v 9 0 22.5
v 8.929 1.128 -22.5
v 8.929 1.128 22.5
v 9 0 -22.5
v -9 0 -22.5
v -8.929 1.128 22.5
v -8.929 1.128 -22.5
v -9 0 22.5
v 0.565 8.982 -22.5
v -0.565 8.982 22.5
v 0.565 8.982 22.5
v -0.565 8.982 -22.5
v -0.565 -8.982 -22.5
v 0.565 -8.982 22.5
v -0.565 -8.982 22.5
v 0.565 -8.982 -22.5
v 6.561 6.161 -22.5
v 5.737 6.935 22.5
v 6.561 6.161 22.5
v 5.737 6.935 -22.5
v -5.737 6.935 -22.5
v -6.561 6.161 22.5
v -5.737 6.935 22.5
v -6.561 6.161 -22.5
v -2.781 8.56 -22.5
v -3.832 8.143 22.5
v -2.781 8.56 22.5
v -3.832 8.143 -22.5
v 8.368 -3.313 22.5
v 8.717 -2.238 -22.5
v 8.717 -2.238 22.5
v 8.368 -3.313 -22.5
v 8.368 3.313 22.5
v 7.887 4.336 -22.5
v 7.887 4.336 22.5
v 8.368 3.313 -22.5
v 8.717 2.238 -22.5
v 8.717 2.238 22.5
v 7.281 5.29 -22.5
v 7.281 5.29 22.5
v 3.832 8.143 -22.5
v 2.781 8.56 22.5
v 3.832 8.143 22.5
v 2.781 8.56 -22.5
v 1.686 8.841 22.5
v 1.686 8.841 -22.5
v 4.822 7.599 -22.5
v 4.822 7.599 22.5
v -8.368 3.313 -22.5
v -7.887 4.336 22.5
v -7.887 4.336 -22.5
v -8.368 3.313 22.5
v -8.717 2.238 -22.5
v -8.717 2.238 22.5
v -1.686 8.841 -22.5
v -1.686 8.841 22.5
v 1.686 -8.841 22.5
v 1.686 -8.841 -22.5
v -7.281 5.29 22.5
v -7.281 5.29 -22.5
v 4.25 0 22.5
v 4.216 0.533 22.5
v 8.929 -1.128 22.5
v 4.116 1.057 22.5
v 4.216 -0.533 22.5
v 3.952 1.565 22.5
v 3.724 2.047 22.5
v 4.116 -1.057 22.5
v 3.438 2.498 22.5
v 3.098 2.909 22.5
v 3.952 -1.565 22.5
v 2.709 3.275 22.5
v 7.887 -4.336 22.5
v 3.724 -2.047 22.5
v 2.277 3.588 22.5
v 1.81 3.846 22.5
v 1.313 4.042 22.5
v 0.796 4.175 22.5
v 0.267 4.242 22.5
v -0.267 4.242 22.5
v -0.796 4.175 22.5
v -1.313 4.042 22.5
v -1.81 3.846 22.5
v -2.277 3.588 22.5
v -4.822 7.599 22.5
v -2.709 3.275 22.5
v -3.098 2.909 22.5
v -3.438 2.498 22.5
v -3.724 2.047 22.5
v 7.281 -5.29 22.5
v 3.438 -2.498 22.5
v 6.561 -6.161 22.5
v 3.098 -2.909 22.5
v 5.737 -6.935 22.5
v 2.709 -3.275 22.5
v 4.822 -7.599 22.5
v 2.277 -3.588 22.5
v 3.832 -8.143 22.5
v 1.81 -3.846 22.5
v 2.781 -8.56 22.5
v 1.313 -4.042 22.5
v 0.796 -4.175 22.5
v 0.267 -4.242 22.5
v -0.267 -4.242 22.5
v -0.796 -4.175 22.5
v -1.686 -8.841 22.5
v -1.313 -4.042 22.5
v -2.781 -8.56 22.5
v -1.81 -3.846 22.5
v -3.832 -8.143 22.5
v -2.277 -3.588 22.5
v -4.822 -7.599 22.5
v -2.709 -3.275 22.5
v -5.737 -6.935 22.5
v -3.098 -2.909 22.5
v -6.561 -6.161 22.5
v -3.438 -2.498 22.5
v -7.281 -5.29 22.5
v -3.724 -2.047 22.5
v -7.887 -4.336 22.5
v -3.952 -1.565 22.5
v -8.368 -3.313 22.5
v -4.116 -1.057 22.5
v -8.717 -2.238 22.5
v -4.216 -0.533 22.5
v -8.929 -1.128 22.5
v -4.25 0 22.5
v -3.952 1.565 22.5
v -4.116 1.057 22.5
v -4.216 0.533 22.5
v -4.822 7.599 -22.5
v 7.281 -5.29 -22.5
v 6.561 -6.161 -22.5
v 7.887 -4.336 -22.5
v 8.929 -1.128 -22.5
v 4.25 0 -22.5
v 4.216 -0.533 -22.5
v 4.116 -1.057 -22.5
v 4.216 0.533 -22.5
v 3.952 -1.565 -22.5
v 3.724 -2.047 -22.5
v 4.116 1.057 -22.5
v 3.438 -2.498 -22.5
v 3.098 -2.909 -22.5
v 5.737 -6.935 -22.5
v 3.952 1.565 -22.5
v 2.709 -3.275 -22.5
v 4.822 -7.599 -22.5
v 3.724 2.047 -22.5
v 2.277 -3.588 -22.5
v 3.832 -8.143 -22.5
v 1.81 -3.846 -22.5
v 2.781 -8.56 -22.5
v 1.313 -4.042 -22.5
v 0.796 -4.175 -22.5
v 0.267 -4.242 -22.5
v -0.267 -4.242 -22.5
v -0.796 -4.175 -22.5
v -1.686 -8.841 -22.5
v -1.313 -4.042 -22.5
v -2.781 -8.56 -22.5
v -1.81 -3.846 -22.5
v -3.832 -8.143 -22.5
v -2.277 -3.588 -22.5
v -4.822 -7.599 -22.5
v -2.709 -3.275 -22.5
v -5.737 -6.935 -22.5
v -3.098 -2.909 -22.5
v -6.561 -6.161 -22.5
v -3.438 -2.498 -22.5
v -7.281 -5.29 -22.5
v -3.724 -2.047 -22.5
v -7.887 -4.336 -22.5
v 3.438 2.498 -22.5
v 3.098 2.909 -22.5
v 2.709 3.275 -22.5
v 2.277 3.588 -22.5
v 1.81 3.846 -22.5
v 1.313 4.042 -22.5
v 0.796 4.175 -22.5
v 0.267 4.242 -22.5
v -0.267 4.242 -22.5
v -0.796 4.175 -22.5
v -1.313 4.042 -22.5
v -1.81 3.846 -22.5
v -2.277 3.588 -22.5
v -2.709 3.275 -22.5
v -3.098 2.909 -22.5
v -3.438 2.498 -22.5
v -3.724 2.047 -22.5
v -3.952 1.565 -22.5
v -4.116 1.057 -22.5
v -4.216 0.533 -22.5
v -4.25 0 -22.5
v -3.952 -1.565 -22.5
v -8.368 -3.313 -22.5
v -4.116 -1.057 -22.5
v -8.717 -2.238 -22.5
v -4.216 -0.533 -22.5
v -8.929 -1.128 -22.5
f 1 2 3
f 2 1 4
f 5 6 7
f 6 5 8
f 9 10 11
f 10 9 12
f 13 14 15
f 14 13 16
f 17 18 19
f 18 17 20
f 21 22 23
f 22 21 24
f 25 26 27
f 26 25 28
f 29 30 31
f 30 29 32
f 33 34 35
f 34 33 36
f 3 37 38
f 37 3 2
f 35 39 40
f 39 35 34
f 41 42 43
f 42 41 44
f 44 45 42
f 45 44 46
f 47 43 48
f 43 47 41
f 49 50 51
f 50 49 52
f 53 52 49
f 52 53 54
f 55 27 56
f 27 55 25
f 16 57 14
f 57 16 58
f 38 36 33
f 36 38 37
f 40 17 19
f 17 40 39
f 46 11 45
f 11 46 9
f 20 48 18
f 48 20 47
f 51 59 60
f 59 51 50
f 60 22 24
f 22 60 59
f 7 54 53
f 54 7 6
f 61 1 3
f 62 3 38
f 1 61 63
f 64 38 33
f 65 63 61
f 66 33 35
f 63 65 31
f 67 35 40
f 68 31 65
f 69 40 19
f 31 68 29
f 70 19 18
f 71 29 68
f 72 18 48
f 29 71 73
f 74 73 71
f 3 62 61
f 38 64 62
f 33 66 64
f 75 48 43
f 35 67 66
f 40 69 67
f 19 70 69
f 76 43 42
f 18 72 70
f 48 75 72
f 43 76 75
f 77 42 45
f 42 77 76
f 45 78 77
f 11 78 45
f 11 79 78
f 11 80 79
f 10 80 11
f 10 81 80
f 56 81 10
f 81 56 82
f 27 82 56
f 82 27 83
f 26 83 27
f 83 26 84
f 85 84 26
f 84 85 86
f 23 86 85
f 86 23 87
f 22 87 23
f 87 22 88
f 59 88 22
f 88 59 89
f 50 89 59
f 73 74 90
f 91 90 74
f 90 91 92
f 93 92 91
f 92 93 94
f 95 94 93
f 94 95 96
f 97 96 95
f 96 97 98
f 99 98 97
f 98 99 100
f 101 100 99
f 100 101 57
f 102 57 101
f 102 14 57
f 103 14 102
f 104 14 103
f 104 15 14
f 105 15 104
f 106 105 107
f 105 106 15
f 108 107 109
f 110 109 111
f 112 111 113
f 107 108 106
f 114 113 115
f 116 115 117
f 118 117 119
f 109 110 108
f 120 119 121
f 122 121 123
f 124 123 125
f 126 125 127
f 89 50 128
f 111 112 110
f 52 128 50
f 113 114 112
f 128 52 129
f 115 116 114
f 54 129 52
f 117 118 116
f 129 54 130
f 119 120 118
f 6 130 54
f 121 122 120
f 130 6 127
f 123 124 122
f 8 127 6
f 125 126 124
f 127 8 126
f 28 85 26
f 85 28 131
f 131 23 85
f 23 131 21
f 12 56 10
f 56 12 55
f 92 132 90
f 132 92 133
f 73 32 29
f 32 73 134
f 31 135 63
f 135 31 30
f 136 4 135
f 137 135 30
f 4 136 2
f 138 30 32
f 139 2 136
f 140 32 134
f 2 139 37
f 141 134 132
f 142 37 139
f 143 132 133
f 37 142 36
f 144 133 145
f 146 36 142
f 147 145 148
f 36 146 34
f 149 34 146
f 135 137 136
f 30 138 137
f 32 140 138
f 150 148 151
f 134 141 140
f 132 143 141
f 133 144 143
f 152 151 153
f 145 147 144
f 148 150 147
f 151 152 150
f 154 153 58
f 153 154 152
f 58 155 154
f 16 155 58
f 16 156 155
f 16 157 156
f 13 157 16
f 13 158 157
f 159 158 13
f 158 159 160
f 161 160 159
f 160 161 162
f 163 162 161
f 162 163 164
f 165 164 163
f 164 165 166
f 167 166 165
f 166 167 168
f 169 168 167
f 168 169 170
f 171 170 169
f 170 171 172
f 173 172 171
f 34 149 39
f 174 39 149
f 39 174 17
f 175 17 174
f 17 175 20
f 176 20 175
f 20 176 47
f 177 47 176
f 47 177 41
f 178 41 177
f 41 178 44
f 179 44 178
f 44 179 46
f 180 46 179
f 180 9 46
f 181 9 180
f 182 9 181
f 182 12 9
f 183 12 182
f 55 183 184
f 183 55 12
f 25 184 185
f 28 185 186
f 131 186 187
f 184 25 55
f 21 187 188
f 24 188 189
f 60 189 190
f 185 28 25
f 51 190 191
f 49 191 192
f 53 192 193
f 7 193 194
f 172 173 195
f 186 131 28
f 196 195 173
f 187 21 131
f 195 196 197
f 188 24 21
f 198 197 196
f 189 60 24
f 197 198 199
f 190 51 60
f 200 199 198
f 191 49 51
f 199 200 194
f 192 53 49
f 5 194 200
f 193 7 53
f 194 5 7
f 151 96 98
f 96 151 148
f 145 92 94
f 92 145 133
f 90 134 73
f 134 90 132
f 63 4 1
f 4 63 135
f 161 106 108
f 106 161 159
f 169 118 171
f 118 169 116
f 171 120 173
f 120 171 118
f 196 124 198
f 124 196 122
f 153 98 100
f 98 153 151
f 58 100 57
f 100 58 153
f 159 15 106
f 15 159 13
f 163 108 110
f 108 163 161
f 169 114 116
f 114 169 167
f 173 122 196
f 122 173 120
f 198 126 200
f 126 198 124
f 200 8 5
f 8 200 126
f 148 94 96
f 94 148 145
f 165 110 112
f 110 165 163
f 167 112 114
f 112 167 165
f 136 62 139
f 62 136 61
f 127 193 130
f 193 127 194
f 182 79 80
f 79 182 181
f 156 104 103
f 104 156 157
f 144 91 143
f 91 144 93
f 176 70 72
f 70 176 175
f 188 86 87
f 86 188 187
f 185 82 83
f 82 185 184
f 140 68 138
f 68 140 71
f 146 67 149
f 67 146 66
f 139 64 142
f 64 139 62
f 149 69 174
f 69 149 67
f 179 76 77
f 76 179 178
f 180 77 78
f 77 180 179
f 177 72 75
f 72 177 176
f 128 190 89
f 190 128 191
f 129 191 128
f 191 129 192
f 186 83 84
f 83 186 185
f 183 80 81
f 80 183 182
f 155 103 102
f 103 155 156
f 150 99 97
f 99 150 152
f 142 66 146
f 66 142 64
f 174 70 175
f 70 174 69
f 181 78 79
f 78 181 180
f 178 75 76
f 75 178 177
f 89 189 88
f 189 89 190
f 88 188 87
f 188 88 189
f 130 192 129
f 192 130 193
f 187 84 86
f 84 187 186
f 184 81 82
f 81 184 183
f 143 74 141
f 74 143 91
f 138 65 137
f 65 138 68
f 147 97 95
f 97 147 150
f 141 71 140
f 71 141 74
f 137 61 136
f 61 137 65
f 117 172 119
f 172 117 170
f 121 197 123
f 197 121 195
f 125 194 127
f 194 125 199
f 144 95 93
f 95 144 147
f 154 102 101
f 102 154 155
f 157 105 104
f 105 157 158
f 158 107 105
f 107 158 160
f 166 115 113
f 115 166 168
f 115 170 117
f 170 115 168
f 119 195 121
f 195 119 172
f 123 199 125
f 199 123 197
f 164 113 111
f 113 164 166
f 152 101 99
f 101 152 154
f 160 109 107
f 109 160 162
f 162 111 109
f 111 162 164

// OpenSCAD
$fn = 50;


difference() {
	union() {
		translate(v = [0, 0, -22.5000000000]) {
			cylinder(h = 45, r = 9.0000000000);
		}
	}
	union() {
		translate(v = [0, 0, -100.0000000000]) {
			cylinder(h = 200, r = 4.2500000000);
		}
	}
}
